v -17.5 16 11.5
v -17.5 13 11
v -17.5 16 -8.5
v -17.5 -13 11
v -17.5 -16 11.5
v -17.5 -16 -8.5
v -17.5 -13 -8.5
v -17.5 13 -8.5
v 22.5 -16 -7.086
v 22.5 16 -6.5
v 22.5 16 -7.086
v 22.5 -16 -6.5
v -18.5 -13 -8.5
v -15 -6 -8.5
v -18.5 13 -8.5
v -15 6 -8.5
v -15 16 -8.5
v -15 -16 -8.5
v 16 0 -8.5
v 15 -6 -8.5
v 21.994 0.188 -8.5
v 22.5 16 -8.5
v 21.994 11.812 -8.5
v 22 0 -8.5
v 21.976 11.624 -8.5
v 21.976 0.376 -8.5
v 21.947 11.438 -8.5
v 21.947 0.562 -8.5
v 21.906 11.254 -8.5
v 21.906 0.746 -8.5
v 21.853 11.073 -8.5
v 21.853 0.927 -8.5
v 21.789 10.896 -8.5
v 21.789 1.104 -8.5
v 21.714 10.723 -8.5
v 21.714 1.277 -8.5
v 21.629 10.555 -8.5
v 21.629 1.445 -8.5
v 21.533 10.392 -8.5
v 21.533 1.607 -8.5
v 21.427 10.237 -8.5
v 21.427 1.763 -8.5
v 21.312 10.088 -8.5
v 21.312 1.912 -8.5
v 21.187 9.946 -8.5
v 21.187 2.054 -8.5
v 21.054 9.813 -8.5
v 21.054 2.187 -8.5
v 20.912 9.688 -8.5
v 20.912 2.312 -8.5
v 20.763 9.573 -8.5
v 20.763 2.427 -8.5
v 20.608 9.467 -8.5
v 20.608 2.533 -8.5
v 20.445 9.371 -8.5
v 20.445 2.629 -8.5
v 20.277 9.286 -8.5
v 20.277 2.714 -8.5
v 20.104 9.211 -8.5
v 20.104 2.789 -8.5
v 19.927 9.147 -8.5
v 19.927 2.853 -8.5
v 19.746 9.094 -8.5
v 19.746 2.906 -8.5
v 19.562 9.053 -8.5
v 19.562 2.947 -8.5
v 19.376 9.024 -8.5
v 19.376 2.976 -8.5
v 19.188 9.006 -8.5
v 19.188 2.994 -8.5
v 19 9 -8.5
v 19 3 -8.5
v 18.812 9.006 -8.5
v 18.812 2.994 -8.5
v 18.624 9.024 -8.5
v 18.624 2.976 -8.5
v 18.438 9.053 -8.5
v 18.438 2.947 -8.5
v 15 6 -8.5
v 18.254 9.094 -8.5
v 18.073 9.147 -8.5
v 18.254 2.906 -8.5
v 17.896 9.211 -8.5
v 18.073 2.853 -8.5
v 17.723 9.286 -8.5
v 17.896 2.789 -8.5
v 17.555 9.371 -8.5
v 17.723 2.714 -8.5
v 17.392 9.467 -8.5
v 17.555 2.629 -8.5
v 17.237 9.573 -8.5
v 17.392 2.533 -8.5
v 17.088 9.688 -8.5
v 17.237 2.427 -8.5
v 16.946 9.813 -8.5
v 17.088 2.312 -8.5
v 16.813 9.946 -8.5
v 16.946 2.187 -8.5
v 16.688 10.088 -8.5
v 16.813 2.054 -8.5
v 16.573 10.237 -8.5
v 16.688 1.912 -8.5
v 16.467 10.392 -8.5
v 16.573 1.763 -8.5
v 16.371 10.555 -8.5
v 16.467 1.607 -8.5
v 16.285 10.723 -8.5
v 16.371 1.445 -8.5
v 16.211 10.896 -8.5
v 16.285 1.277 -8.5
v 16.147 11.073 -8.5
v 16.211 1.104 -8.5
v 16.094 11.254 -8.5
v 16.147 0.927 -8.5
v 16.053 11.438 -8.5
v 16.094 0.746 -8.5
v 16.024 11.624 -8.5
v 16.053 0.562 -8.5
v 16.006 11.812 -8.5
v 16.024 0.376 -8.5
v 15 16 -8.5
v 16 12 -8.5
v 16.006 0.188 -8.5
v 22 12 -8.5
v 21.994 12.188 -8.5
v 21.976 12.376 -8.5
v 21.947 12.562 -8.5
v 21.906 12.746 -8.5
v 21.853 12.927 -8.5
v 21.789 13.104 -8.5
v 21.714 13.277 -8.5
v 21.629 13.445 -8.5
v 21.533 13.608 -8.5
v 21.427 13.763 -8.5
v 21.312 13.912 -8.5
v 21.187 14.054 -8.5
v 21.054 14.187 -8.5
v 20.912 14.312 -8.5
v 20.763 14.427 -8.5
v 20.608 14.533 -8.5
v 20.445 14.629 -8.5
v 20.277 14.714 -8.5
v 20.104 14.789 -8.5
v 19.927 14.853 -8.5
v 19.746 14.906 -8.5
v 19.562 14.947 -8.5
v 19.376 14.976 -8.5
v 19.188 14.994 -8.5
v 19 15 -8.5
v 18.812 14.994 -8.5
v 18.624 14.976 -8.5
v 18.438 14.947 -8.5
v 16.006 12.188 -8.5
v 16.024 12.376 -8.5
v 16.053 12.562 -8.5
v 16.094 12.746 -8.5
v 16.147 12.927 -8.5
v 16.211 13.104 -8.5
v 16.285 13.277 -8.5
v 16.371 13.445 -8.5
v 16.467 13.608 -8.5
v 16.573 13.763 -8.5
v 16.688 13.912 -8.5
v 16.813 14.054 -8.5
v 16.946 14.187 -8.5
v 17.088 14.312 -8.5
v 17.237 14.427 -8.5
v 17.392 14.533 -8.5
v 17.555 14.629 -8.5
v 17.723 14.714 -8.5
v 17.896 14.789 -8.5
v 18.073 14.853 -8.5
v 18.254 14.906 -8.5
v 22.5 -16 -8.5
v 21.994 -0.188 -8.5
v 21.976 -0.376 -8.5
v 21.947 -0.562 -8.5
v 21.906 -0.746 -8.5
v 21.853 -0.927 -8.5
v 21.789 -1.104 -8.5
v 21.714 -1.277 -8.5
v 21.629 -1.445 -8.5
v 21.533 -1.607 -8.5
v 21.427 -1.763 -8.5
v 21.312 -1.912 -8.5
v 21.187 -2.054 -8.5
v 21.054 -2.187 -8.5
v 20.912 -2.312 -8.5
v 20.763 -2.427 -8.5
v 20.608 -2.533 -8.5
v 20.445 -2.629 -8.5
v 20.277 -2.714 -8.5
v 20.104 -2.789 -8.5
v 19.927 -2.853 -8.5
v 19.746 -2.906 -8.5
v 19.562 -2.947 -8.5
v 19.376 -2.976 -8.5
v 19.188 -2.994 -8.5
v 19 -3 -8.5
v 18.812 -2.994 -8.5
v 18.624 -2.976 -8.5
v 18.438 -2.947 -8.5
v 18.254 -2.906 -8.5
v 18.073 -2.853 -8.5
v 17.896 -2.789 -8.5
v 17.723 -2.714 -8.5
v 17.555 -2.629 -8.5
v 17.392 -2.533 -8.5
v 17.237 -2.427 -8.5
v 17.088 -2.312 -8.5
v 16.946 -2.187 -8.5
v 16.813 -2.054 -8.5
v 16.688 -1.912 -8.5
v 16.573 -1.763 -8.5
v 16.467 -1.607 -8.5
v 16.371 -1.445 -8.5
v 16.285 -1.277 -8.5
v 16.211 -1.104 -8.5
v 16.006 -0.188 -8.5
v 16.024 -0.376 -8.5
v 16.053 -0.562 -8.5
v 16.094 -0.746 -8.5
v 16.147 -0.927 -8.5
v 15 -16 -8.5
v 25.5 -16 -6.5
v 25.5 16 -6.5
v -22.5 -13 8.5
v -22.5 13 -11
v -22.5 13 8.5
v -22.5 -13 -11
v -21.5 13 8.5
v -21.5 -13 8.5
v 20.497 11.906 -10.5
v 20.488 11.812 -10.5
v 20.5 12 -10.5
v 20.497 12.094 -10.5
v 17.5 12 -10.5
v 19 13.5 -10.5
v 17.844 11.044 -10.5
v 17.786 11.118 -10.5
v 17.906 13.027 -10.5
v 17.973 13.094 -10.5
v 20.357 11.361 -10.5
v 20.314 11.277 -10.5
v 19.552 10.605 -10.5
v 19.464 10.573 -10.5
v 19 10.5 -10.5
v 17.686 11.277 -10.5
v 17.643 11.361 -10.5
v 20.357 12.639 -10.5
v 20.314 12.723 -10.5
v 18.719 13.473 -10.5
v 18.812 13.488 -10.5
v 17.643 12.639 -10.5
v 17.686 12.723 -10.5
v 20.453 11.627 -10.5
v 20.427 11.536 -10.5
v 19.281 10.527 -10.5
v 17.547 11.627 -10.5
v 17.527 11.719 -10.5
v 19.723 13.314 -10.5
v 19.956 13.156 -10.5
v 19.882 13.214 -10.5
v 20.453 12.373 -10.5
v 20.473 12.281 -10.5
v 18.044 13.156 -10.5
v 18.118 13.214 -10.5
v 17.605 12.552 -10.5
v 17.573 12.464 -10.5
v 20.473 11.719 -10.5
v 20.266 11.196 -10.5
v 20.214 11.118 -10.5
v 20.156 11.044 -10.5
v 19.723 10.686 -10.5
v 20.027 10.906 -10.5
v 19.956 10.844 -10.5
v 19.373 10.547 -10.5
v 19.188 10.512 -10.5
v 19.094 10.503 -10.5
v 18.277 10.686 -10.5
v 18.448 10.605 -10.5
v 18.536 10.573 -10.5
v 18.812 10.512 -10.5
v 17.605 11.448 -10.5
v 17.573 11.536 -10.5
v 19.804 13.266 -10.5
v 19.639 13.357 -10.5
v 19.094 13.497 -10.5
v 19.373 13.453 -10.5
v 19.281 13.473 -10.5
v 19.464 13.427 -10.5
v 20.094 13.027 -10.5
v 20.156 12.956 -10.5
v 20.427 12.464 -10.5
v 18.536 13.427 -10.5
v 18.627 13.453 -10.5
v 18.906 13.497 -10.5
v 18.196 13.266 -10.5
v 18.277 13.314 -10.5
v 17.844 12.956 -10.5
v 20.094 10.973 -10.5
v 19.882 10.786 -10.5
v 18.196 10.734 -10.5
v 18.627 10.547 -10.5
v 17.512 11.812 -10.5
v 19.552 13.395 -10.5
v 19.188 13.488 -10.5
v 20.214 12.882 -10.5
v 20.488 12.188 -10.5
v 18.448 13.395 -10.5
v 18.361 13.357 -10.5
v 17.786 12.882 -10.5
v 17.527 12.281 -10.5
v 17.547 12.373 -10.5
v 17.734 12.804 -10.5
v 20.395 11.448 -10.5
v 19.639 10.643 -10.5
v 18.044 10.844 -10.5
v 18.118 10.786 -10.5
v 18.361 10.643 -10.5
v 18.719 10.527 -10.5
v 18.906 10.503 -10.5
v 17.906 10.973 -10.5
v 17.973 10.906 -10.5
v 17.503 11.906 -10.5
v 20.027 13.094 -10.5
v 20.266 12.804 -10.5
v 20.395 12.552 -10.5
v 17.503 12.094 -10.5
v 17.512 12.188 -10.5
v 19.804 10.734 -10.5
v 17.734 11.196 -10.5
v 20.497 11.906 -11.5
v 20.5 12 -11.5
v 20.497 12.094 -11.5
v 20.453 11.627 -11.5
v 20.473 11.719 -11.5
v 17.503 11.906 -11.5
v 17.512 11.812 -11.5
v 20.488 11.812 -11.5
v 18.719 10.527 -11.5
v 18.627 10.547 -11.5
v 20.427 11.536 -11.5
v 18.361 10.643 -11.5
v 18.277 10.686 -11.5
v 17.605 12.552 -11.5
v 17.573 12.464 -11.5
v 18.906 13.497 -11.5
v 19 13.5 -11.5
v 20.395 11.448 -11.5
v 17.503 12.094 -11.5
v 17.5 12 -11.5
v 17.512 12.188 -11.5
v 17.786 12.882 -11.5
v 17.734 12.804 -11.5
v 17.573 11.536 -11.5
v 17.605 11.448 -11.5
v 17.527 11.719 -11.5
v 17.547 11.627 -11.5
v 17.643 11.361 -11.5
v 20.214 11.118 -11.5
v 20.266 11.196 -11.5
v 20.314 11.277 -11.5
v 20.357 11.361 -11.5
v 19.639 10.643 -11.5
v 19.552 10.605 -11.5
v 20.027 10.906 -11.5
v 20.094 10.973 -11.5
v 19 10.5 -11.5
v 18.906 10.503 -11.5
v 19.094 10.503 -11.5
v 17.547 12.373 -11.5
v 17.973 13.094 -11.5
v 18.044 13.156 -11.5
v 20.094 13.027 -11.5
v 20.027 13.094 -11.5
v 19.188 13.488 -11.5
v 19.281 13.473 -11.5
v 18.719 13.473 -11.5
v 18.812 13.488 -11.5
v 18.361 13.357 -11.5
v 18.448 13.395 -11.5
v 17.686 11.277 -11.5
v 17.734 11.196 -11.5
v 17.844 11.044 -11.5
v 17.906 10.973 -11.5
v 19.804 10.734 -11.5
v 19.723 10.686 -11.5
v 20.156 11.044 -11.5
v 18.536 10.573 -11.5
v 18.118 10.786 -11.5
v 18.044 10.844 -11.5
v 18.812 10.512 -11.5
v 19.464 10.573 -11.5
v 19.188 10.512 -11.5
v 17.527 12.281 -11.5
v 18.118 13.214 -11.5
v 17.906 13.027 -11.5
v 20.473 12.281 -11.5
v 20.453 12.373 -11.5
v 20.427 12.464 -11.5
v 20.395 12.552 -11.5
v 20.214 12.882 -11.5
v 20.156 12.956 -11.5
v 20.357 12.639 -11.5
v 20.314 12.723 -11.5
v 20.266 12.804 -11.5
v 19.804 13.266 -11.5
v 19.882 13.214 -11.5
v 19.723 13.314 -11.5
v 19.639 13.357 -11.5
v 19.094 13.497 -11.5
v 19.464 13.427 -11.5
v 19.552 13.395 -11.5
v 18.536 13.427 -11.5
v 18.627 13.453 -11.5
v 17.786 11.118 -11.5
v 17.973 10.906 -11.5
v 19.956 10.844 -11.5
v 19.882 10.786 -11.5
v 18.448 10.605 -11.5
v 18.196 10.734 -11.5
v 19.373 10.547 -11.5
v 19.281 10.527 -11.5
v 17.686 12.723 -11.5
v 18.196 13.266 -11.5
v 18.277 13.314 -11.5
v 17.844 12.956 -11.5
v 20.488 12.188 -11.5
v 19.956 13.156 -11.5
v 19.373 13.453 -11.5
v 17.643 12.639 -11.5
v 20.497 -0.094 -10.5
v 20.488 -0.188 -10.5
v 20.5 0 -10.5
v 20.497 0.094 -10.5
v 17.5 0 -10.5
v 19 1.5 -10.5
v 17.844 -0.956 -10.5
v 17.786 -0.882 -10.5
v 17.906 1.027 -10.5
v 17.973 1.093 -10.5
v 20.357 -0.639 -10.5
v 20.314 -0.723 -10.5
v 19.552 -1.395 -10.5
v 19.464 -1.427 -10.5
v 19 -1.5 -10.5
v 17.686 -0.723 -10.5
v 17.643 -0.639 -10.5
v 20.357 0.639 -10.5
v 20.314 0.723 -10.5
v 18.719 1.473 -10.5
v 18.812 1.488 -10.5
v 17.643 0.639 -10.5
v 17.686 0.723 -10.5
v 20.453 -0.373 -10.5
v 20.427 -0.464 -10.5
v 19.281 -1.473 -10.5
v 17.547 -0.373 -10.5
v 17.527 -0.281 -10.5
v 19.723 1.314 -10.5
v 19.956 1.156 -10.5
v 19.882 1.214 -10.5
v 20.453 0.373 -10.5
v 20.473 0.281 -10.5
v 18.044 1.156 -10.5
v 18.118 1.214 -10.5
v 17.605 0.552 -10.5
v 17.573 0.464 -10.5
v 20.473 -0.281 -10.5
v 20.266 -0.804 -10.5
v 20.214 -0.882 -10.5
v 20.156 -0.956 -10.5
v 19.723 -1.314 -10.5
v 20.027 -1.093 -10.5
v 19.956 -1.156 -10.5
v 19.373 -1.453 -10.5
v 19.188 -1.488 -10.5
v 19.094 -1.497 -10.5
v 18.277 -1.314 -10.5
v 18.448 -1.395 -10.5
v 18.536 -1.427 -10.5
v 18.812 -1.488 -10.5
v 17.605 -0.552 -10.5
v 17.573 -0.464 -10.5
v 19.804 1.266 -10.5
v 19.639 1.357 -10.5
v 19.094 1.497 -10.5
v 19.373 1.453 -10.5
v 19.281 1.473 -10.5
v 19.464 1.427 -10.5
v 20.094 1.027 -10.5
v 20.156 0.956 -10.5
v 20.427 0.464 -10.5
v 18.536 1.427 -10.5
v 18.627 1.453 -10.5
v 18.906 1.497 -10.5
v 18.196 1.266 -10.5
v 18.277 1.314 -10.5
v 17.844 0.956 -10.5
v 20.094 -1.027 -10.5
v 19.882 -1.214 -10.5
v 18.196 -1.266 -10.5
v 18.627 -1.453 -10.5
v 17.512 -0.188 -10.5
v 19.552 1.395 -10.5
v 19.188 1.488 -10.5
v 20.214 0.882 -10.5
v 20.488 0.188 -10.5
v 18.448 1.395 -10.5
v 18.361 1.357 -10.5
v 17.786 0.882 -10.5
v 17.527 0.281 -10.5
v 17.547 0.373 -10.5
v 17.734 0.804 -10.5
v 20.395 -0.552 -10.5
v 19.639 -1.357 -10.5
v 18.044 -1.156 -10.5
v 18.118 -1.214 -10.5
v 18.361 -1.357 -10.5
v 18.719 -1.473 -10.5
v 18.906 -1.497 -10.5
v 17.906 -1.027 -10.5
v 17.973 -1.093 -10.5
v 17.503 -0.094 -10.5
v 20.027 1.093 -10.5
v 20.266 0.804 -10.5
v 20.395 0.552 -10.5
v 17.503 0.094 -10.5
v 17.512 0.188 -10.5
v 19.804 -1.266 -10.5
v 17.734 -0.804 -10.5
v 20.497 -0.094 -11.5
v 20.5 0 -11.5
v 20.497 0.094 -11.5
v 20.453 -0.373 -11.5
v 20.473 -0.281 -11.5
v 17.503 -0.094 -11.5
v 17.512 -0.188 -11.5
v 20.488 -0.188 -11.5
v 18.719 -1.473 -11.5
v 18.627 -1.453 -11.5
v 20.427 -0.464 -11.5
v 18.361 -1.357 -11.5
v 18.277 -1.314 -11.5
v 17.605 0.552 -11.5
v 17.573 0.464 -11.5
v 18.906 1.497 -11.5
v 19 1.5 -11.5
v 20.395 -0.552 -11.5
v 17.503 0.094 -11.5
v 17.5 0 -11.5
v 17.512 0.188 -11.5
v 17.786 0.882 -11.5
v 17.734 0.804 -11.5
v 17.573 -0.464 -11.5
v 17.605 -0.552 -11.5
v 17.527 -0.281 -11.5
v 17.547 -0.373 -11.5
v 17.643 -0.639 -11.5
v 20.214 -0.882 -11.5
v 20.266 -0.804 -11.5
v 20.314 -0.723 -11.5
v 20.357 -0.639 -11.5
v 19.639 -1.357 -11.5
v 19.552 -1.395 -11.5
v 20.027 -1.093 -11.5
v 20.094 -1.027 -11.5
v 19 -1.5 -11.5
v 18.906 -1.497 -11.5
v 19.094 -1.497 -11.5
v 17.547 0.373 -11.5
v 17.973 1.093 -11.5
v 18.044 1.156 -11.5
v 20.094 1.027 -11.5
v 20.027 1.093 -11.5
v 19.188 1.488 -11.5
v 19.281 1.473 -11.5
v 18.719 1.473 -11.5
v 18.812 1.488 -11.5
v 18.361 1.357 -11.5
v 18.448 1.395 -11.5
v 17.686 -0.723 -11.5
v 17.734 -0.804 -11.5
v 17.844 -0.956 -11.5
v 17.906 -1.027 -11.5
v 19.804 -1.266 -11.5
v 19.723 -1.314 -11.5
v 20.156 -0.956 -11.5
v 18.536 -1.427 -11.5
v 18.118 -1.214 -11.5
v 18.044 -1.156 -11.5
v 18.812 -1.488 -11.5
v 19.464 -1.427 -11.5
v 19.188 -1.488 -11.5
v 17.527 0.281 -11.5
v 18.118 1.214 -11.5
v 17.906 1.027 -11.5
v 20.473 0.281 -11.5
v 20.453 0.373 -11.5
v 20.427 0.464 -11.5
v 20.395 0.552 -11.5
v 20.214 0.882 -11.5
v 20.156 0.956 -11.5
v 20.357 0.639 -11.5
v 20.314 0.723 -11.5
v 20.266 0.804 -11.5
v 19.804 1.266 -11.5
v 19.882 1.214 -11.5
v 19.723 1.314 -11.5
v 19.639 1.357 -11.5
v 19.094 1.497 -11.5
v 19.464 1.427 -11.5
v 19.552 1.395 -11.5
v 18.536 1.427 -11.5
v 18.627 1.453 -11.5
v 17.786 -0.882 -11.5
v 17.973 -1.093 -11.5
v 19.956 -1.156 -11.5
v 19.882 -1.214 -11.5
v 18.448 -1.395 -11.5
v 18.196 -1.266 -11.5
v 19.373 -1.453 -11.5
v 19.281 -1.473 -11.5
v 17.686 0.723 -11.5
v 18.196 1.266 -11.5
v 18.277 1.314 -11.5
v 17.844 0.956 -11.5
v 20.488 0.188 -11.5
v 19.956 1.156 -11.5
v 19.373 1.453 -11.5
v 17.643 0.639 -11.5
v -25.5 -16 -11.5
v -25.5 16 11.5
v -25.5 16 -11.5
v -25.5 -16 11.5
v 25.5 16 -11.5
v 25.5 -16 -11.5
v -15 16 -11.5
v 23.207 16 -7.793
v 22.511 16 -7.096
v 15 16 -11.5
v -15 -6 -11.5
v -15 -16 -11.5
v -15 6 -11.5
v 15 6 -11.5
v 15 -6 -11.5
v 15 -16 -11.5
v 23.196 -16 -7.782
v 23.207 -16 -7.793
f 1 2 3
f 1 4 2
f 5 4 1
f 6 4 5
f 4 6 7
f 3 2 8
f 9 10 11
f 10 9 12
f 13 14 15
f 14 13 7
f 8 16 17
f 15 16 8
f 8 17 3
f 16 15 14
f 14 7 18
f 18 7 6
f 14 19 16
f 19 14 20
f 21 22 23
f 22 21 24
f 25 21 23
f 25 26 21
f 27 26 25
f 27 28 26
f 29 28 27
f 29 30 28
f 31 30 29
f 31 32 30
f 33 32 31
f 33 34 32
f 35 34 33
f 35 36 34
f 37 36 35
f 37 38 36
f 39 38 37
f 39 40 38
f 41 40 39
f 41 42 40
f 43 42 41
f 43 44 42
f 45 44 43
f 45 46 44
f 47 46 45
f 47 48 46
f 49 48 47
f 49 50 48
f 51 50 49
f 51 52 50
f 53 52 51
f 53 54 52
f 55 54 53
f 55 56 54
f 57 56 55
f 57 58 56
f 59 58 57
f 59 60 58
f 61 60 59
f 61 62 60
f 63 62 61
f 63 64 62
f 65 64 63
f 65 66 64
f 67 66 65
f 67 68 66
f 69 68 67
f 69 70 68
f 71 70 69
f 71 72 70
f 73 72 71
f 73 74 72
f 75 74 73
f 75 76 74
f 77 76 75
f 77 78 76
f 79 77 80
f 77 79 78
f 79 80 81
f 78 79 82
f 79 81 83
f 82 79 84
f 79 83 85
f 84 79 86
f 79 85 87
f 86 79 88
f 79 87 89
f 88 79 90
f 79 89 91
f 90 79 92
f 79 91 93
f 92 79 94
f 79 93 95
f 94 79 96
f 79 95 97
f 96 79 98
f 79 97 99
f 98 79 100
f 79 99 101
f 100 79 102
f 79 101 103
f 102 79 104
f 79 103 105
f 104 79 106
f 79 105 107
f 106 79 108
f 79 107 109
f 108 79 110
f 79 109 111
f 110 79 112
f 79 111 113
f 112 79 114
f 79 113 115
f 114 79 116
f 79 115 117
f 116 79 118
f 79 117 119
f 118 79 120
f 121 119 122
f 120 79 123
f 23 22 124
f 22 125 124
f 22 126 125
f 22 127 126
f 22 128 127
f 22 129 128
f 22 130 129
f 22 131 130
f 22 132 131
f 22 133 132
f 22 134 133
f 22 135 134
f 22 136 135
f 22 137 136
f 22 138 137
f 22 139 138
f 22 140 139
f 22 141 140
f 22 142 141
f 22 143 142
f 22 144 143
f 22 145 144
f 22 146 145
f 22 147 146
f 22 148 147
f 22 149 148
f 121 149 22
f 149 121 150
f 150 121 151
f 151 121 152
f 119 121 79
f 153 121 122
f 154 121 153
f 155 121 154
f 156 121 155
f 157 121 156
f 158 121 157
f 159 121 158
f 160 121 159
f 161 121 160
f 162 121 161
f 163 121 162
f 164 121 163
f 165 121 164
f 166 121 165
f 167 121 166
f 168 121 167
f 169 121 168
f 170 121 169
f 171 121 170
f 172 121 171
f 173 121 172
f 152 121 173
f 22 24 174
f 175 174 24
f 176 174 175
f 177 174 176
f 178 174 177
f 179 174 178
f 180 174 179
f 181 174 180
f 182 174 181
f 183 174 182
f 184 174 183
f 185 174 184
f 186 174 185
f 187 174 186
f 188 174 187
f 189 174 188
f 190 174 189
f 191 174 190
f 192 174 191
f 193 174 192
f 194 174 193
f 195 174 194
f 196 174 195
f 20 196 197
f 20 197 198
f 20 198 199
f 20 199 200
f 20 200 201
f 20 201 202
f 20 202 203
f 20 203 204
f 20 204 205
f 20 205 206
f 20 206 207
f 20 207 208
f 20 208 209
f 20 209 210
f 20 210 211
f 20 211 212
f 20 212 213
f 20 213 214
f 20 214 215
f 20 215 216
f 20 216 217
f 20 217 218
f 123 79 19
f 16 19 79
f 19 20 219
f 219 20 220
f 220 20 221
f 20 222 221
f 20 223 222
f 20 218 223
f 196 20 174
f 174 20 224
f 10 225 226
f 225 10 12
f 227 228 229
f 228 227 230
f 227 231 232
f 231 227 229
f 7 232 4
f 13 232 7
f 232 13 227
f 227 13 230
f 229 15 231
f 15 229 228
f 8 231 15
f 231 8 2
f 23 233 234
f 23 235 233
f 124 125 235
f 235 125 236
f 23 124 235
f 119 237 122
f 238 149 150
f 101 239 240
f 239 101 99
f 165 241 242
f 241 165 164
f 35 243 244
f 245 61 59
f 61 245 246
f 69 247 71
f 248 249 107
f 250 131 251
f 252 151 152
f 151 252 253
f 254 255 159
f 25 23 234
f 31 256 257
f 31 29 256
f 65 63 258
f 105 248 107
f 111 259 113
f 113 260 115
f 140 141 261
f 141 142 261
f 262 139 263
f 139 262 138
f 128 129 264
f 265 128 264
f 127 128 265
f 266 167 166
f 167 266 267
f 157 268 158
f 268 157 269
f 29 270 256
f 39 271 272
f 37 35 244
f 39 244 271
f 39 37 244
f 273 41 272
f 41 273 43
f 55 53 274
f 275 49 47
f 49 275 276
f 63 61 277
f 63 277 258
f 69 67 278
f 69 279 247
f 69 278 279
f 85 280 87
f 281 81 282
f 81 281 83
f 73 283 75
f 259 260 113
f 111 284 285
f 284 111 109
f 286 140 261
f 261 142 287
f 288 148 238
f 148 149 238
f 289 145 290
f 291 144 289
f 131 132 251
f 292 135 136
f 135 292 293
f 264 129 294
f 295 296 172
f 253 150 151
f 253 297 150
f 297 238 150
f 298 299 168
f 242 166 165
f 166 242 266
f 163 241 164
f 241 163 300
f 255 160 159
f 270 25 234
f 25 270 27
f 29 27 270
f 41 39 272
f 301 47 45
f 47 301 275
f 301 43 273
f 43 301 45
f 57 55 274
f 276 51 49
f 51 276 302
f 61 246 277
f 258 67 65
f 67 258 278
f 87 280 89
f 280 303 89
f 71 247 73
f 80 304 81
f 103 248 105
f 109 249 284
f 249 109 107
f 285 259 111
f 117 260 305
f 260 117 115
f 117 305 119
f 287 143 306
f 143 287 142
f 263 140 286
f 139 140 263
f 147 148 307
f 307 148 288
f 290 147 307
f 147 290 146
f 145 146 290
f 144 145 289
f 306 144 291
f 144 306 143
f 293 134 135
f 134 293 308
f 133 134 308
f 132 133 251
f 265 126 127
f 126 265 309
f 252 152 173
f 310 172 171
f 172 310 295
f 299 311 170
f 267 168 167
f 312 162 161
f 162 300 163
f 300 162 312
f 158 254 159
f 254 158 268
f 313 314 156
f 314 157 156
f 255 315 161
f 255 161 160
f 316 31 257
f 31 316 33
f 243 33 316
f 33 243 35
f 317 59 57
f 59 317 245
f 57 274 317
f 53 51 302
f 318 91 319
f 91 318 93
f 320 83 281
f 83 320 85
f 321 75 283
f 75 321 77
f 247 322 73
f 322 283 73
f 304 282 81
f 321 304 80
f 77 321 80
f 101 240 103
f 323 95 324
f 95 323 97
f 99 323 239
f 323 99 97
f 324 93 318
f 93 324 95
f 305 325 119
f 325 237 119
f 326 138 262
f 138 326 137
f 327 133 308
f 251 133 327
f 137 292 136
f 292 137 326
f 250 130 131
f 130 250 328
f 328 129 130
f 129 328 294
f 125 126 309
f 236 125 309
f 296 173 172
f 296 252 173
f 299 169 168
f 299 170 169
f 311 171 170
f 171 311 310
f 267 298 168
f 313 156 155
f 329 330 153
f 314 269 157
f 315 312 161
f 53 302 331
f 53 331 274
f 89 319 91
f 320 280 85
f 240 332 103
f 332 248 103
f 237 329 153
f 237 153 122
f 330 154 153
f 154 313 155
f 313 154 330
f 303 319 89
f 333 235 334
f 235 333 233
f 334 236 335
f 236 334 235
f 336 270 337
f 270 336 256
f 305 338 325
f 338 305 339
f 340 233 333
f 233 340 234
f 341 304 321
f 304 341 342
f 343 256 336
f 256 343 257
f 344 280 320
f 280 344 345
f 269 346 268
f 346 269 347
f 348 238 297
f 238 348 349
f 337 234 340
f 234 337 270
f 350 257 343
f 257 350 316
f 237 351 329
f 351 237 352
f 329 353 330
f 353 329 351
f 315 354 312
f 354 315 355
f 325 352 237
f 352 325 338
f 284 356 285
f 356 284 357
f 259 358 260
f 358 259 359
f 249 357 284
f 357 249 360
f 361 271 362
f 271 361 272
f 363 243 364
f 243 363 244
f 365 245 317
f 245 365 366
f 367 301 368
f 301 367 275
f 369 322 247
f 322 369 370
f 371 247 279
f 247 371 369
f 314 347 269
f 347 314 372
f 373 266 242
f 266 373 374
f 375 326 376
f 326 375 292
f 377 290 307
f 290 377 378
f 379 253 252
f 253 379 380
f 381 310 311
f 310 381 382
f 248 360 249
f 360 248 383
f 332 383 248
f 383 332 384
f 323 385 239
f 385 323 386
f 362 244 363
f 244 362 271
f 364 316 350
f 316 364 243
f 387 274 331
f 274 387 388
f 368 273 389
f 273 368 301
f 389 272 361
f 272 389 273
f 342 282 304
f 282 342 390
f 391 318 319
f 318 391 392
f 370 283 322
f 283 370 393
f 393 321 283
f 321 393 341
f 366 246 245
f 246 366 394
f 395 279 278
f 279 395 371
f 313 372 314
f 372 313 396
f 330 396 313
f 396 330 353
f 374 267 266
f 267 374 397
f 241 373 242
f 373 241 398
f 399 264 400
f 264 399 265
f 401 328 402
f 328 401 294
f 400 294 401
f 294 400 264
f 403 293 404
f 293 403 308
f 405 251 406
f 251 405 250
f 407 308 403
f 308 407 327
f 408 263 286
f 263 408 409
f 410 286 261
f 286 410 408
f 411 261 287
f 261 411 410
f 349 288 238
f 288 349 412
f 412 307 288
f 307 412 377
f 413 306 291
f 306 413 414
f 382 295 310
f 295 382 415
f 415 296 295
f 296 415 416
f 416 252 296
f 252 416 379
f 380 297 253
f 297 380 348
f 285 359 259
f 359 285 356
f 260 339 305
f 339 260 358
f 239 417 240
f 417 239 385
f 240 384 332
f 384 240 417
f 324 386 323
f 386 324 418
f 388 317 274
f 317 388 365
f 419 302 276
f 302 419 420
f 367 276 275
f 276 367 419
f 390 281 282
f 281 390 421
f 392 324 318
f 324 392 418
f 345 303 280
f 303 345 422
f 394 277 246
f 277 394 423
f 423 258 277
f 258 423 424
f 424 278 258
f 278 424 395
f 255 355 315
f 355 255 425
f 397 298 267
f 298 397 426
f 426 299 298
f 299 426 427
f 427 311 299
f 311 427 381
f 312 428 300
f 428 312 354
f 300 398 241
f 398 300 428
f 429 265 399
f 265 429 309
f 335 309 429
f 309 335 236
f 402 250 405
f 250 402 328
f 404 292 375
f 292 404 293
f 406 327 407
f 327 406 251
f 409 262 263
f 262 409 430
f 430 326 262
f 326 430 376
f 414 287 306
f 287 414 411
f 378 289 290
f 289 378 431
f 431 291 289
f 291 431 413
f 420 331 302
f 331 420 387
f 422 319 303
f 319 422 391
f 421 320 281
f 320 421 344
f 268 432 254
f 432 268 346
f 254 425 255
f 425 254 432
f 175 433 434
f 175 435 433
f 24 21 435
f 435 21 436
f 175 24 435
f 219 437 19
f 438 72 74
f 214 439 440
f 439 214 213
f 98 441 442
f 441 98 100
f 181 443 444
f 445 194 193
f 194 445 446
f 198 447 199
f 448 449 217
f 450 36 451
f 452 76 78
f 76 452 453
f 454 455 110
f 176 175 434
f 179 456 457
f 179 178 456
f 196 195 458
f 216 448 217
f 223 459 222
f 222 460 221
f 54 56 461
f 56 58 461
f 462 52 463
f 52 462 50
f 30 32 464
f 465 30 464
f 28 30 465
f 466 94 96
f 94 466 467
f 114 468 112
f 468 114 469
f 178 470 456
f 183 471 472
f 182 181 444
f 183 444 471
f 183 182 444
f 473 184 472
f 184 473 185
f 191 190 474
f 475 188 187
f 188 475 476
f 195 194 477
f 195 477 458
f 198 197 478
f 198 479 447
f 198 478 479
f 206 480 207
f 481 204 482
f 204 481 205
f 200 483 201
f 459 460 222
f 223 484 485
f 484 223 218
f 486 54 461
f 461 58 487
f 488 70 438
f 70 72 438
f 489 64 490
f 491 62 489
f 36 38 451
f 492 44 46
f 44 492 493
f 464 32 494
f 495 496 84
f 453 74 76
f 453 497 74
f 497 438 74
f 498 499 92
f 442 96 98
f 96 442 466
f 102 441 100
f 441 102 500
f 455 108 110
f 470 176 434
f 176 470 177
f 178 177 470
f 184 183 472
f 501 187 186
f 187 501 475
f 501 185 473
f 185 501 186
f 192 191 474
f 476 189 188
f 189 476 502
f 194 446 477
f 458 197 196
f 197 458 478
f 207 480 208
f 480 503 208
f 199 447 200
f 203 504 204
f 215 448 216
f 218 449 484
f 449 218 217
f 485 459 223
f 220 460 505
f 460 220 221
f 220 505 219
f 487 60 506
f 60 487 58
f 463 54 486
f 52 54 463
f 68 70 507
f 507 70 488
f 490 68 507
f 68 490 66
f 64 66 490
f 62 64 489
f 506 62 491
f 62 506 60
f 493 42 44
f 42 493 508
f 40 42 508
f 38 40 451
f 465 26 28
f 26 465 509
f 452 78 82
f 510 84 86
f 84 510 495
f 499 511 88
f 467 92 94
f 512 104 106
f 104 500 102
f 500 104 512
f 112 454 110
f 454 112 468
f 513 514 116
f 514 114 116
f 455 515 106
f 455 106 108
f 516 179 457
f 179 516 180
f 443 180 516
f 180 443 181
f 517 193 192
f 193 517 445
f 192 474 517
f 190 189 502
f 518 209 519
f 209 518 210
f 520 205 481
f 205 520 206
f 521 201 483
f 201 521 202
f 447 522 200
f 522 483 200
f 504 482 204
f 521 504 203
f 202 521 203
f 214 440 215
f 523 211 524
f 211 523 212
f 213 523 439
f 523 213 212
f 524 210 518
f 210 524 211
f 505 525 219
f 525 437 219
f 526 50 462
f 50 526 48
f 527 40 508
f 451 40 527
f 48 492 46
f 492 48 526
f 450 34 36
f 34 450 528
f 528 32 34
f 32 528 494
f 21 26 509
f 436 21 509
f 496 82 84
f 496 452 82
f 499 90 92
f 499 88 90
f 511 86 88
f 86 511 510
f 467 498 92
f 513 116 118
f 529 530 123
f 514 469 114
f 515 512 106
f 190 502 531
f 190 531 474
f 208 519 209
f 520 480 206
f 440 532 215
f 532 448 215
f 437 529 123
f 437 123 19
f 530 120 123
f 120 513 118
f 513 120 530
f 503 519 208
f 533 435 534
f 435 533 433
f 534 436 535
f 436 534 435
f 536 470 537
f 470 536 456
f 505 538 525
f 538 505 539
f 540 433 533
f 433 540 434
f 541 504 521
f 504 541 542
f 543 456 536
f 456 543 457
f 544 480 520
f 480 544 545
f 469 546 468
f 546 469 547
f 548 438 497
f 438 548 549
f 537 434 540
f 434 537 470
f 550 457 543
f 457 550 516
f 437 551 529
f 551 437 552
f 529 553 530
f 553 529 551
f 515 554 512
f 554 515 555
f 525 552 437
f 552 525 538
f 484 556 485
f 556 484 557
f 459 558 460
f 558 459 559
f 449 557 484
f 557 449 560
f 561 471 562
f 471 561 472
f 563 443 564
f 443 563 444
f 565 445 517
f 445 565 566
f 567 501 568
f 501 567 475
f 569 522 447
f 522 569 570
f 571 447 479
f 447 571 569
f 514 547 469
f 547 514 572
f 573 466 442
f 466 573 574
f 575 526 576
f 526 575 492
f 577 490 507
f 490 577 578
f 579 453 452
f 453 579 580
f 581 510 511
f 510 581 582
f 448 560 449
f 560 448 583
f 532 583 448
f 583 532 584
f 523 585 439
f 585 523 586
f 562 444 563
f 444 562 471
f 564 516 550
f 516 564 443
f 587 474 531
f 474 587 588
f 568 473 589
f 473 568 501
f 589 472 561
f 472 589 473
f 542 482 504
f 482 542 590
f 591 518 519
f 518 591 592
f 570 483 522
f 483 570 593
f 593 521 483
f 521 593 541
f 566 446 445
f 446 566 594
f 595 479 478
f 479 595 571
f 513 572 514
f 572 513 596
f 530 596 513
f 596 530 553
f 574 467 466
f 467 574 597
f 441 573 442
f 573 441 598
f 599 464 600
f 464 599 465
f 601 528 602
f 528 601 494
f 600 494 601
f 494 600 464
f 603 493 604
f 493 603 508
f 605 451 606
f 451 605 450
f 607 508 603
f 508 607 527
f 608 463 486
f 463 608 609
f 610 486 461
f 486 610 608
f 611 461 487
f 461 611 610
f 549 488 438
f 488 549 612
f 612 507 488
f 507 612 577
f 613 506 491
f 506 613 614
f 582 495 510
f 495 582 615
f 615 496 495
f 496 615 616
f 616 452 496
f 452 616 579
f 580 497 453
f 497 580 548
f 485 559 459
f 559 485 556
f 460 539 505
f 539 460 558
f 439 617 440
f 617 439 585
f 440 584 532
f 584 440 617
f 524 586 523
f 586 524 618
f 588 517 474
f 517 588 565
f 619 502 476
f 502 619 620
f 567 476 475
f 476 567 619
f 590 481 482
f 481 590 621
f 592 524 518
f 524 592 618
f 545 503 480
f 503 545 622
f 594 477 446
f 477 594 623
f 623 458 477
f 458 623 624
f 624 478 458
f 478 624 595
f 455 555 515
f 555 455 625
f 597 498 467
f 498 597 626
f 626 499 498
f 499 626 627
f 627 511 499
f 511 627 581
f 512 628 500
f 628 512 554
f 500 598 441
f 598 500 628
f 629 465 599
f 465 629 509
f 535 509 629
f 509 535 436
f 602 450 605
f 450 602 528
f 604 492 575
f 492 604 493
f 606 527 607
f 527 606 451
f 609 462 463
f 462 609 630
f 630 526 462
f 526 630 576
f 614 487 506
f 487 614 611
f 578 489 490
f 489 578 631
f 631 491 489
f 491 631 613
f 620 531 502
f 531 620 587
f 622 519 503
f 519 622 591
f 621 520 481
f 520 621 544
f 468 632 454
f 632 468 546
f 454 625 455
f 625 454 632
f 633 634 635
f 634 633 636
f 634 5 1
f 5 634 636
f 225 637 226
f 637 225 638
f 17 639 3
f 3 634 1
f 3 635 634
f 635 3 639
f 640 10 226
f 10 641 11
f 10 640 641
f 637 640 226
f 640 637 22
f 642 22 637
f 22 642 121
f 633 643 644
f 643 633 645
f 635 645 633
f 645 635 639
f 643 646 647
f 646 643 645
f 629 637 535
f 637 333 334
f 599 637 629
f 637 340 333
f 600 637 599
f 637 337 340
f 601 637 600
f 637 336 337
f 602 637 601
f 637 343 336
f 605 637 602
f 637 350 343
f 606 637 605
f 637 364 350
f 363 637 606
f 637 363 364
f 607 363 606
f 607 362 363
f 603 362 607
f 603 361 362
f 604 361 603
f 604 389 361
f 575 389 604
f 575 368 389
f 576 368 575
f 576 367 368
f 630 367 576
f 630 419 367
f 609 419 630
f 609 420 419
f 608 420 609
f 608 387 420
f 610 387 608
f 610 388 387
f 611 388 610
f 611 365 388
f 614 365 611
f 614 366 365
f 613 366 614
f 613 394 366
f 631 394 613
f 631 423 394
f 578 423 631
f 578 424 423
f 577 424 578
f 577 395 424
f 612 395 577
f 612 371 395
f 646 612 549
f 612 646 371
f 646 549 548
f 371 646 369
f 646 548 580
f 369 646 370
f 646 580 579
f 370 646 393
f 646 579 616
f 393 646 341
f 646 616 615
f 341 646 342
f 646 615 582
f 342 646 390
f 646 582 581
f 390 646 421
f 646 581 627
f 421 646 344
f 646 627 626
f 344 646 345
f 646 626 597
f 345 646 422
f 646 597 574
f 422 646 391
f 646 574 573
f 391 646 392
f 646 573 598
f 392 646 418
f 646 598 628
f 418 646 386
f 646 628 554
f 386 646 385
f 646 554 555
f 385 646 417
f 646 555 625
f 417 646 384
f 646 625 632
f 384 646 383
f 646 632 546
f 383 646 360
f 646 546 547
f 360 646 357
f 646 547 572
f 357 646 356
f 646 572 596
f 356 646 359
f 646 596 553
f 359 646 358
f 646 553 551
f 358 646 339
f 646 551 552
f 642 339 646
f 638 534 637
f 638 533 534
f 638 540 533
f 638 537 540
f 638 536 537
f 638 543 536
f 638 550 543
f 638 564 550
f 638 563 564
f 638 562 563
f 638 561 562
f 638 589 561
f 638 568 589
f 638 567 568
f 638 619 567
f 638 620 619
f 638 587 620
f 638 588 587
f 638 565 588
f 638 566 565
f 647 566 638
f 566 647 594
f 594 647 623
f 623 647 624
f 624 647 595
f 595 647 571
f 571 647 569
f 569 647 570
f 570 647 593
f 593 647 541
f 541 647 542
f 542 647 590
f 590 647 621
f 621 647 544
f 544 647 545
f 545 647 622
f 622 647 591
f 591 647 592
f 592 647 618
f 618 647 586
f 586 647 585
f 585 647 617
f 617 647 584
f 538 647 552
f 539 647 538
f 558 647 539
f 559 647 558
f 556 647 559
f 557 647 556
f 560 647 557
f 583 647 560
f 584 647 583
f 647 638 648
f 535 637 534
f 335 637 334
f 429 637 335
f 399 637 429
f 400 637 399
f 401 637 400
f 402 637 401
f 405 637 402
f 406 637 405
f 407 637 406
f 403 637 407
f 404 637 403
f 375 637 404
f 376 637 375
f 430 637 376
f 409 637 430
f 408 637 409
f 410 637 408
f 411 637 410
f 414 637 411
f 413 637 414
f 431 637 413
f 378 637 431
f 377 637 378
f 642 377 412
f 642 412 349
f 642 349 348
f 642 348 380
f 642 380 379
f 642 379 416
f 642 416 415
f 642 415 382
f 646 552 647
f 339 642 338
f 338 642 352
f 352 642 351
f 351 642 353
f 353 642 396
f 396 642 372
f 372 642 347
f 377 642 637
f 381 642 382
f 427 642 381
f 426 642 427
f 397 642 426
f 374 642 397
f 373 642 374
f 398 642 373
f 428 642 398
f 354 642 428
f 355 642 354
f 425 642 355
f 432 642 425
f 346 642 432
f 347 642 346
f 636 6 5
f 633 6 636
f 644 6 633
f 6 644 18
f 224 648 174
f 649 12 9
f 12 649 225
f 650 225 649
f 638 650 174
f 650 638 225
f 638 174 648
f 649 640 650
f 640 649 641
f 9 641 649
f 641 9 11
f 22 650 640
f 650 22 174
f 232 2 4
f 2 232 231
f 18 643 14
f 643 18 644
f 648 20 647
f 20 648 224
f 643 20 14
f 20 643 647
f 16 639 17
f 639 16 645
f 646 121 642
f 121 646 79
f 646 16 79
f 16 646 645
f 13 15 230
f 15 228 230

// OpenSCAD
batteryDimentions = [45,26,17];
holderDimentions = [6,6,6] + batteryDimentions;

module batteryMockup()  {
    cube(batteryDimentions, center = true);
}

module frontCornerHolder(pos) {
    translate(pos)
    rotate([0,-135,0])
    rotate([90,0,0])
    linear_extrude(height = holderDimentions[1]+1, center = true, convexity = 10) polygon(points=[[0,0],[1,0],[0,1]]);
}

module backCornerSlider(pos) {
    translate(pos)
    translate([5,0,0])
    rotate([90,0,180])
    linear_extrude(height = batteryDimentions[1], center = true, convexity = 10) polygon(points=[[0,0],[4,0],[0,2.5]]);
}

module bottomCutout() {
    translate([0,-holderDimentions[1]/2,-10])
    translate([0,5,0])
    cube([30,10,10],center=true);
}

module bolt(pos) {
    translate(pos)
    translate([0,0,-1])
    union() {
        linear_extrude(height = 2,center = true, convecity = 10, scale = 2, $fn=100) circle(d=3);
        translate([0,0,-5]) linear_extrude(height = 10,center = true, convecity = 10, $fn=100) circle(d=3);
    }
}

difference () {
    cube(holderDimentions, center=true);
    
    union() {
        translate([2.5,0,2]) cube([-5,10,4]+batteryDimentions, center=true);
        translate([8,0,5]) cube([0,1,0]+holderDimentions, center=true);
        batteryMockup();
    }
    
    frontCornerHolder([(batteryDimentions[0]/2+sqrt(0.5)),0,-(batteryDimentions[2]/2-sqrt(2)/2)]);
    backCornerSlider([-batteryDimentions[0]/2, 0, batteryDimentions[2]/2]);
    bottomCutout();
    mirror([0,1,0]) bottomCutout();
    
    translate([(5-batteryDimentions[0]/2),0,-batteryDimentions[2]/2])
    rotate([180,0,180])
    backCornerSlider([0,0,0]);
    bolt([19,12,-batteryDimentions[2]/2]);
    bolt([19,0,-batteryDimentions[2]/2]);
}
